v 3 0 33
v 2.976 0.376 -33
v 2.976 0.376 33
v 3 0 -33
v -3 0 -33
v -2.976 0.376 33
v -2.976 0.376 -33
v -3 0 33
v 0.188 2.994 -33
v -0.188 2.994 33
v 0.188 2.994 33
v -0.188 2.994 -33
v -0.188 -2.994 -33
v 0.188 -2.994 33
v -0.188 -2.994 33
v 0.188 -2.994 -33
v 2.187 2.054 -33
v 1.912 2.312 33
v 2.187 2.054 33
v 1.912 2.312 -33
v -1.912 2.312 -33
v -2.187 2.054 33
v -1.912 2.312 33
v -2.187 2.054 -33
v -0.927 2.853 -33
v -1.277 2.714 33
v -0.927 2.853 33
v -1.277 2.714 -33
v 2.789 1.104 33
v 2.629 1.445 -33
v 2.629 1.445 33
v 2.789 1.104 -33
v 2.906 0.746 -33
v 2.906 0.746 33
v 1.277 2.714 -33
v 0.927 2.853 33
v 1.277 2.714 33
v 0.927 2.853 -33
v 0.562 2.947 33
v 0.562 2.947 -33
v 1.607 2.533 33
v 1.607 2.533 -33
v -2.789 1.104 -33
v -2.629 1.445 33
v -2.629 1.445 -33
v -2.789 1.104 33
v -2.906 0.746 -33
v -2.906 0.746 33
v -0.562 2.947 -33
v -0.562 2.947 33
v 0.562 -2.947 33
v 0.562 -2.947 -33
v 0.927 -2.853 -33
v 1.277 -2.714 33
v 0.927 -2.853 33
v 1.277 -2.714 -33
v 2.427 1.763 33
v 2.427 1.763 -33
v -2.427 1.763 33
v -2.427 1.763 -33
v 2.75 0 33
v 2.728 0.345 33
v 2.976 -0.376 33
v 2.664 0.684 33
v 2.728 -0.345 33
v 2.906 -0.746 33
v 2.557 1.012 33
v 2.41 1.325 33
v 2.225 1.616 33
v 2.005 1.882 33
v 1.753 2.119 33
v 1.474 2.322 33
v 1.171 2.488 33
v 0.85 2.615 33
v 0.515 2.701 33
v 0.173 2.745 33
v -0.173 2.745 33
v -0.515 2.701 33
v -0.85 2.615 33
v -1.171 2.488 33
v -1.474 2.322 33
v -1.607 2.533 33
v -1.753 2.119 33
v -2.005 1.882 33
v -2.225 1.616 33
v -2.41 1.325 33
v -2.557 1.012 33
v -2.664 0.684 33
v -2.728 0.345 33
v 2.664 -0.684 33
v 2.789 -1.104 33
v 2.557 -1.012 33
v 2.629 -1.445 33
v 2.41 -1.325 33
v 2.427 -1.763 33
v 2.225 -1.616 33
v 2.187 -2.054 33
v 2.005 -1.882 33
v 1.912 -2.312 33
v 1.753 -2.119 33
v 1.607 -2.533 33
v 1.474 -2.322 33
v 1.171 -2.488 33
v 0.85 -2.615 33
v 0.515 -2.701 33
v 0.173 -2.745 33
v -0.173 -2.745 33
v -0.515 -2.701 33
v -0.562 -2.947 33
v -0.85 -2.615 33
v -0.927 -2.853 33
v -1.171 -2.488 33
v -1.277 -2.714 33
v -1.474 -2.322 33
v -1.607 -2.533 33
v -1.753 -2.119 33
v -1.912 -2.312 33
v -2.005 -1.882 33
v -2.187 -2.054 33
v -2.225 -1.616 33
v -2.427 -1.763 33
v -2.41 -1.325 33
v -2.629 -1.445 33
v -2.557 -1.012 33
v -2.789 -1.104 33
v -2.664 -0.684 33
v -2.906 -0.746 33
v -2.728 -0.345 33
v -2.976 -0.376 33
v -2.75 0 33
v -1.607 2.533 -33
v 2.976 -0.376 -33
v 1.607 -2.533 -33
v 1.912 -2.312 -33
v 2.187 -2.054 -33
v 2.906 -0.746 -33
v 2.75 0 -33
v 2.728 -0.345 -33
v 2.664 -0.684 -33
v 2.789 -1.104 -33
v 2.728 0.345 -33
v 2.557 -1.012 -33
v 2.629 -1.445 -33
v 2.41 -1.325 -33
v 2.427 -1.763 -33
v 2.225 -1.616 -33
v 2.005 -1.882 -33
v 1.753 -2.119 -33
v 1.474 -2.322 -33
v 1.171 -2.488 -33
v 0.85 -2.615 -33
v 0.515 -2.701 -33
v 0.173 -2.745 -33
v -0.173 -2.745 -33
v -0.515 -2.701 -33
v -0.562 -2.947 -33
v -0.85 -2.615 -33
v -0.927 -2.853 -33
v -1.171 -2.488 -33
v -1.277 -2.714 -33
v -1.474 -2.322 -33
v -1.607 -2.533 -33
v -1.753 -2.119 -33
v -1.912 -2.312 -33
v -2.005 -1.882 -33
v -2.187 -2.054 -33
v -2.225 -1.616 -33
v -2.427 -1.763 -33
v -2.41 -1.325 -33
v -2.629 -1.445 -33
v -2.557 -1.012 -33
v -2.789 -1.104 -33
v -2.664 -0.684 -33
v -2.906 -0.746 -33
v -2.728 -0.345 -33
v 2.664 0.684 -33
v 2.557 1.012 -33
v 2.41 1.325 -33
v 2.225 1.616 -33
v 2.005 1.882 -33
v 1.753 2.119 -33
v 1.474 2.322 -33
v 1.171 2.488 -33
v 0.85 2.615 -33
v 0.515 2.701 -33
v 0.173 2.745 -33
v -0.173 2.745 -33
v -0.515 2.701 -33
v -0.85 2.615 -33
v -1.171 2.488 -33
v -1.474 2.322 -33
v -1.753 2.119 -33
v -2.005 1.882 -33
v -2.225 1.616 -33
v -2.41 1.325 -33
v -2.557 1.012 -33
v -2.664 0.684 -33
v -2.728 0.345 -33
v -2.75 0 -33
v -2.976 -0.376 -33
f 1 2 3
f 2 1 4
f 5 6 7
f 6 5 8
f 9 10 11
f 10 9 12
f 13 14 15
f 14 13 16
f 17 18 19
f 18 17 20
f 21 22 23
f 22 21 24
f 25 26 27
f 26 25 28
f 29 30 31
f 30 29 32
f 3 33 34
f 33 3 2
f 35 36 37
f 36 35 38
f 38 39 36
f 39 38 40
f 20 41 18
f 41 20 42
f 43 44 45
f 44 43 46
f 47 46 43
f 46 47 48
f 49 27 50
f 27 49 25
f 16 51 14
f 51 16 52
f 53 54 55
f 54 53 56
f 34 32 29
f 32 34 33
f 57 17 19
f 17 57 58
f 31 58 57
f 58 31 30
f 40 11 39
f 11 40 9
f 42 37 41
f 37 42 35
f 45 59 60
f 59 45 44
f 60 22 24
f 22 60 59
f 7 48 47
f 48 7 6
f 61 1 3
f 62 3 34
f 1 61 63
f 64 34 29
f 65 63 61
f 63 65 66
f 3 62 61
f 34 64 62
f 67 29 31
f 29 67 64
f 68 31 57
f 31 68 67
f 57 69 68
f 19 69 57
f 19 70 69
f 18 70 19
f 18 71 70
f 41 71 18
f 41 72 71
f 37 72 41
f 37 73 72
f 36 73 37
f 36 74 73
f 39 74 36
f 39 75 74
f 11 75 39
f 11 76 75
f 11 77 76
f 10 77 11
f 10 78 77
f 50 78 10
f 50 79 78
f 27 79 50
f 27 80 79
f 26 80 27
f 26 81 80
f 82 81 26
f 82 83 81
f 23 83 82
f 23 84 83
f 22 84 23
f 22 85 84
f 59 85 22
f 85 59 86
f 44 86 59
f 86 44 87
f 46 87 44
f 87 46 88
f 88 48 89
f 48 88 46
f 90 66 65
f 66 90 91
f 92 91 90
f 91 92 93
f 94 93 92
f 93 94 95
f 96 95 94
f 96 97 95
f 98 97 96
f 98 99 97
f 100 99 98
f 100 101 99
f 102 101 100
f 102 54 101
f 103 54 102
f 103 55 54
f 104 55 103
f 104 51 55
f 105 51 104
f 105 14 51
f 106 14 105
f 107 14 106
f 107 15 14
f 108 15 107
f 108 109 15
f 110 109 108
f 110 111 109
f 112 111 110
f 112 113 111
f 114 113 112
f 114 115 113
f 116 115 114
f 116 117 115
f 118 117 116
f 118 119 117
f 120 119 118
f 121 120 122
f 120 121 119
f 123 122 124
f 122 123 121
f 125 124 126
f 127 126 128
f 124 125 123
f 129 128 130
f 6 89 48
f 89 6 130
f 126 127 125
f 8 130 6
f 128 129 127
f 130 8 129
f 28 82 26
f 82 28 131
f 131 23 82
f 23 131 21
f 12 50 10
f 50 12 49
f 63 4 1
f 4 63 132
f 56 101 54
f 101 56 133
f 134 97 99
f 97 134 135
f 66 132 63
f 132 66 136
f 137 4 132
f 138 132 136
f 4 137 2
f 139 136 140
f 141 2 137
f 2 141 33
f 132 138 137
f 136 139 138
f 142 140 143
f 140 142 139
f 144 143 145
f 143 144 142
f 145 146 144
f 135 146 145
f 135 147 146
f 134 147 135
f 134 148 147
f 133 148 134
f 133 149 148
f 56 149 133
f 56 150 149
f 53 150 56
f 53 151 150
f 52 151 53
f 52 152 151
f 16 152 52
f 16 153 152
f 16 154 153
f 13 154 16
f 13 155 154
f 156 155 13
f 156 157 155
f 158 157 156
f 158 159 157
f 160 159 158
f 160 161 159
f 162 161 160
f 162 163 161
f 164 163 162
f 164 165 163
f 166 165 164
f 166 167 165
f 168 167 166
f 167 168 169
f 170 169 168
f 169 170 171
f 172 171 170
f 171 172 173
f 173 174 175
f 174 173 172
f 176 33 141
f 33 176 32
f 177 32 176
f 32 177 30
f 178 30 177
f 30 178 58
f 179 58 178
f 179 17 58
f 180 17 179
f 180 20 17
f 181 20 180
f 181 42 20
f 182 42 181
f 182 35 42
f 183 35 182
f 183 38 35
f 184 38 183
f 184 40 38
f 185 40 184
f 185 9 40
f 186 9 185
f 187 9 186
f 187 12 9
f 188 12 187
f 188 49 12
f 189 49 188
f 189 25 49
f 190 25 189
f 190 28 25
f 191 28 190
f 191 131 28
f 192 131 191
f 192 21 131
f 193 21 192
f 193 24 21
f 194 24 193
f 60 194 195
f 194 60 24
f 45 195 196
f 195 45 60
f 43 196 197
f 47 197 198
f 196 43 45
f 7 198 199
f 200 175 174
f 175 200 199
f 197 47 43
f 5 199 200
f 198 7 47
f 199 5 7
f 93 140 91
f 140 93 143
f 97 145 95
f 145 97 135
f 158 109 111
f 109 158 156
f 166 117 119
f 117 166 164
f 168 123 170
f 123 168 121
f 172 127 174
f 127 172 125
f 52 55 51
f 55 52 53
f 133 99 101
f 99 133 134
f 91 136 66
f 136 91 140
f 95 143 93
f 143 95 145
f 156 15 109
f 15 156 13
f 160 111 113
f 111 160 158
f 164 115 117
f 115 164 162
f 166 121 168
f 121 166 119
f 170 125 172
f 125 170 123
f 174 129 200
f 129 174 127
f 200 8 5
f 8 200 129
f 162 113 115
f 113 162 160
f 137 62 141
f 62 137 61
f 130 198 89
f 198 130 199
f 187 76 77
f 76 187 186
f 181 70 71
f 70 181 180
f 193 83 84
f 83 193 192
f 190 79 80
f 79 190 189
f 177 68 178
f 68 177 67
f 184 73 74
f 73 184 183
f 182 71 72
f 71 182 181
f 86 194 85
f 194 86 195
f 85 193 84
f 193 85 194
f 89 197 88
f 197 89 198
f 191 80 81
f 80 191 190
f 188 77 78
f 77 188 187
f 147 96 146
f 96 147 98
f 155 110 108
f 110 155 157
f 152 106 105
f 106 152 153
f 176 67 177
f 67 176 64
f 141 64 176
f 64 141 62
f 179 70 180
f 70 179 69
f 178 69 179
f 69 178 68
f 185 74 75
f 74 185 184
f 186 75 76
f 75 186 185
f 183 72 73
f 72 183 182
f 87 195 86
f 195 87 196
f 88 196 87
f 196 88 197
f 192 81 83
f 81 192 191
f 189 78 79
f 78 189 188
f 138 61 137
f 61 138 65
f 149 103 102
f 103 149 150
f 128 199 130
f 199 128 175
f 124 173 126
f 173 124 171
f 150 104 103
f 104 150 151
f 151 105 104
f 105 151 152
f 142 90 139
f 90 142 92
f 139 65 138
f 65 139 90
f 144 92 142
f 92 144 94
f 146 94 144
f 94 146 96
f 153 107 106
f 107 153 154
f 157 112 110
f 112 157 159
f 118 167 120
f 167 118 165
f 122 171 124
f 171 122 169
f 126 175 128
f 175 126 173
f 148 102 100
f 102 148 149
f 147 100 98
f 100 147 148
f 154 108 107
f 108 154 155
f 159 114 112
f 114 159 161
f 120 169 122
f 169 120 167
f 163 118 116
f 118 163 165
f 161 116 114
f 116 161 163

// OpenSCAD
$fn = 50;


difference() {
	union() {
		translate(v = [0, 0, -33.0000000000]) {
			cylinder(h = 66, r = 3.0000000000);
		}
	}
	union() {
		translate(v = [0, 0, -100.0000000000]) {
			cylinder(h = 200, r = 2.7500000000);
		}
	}
}
